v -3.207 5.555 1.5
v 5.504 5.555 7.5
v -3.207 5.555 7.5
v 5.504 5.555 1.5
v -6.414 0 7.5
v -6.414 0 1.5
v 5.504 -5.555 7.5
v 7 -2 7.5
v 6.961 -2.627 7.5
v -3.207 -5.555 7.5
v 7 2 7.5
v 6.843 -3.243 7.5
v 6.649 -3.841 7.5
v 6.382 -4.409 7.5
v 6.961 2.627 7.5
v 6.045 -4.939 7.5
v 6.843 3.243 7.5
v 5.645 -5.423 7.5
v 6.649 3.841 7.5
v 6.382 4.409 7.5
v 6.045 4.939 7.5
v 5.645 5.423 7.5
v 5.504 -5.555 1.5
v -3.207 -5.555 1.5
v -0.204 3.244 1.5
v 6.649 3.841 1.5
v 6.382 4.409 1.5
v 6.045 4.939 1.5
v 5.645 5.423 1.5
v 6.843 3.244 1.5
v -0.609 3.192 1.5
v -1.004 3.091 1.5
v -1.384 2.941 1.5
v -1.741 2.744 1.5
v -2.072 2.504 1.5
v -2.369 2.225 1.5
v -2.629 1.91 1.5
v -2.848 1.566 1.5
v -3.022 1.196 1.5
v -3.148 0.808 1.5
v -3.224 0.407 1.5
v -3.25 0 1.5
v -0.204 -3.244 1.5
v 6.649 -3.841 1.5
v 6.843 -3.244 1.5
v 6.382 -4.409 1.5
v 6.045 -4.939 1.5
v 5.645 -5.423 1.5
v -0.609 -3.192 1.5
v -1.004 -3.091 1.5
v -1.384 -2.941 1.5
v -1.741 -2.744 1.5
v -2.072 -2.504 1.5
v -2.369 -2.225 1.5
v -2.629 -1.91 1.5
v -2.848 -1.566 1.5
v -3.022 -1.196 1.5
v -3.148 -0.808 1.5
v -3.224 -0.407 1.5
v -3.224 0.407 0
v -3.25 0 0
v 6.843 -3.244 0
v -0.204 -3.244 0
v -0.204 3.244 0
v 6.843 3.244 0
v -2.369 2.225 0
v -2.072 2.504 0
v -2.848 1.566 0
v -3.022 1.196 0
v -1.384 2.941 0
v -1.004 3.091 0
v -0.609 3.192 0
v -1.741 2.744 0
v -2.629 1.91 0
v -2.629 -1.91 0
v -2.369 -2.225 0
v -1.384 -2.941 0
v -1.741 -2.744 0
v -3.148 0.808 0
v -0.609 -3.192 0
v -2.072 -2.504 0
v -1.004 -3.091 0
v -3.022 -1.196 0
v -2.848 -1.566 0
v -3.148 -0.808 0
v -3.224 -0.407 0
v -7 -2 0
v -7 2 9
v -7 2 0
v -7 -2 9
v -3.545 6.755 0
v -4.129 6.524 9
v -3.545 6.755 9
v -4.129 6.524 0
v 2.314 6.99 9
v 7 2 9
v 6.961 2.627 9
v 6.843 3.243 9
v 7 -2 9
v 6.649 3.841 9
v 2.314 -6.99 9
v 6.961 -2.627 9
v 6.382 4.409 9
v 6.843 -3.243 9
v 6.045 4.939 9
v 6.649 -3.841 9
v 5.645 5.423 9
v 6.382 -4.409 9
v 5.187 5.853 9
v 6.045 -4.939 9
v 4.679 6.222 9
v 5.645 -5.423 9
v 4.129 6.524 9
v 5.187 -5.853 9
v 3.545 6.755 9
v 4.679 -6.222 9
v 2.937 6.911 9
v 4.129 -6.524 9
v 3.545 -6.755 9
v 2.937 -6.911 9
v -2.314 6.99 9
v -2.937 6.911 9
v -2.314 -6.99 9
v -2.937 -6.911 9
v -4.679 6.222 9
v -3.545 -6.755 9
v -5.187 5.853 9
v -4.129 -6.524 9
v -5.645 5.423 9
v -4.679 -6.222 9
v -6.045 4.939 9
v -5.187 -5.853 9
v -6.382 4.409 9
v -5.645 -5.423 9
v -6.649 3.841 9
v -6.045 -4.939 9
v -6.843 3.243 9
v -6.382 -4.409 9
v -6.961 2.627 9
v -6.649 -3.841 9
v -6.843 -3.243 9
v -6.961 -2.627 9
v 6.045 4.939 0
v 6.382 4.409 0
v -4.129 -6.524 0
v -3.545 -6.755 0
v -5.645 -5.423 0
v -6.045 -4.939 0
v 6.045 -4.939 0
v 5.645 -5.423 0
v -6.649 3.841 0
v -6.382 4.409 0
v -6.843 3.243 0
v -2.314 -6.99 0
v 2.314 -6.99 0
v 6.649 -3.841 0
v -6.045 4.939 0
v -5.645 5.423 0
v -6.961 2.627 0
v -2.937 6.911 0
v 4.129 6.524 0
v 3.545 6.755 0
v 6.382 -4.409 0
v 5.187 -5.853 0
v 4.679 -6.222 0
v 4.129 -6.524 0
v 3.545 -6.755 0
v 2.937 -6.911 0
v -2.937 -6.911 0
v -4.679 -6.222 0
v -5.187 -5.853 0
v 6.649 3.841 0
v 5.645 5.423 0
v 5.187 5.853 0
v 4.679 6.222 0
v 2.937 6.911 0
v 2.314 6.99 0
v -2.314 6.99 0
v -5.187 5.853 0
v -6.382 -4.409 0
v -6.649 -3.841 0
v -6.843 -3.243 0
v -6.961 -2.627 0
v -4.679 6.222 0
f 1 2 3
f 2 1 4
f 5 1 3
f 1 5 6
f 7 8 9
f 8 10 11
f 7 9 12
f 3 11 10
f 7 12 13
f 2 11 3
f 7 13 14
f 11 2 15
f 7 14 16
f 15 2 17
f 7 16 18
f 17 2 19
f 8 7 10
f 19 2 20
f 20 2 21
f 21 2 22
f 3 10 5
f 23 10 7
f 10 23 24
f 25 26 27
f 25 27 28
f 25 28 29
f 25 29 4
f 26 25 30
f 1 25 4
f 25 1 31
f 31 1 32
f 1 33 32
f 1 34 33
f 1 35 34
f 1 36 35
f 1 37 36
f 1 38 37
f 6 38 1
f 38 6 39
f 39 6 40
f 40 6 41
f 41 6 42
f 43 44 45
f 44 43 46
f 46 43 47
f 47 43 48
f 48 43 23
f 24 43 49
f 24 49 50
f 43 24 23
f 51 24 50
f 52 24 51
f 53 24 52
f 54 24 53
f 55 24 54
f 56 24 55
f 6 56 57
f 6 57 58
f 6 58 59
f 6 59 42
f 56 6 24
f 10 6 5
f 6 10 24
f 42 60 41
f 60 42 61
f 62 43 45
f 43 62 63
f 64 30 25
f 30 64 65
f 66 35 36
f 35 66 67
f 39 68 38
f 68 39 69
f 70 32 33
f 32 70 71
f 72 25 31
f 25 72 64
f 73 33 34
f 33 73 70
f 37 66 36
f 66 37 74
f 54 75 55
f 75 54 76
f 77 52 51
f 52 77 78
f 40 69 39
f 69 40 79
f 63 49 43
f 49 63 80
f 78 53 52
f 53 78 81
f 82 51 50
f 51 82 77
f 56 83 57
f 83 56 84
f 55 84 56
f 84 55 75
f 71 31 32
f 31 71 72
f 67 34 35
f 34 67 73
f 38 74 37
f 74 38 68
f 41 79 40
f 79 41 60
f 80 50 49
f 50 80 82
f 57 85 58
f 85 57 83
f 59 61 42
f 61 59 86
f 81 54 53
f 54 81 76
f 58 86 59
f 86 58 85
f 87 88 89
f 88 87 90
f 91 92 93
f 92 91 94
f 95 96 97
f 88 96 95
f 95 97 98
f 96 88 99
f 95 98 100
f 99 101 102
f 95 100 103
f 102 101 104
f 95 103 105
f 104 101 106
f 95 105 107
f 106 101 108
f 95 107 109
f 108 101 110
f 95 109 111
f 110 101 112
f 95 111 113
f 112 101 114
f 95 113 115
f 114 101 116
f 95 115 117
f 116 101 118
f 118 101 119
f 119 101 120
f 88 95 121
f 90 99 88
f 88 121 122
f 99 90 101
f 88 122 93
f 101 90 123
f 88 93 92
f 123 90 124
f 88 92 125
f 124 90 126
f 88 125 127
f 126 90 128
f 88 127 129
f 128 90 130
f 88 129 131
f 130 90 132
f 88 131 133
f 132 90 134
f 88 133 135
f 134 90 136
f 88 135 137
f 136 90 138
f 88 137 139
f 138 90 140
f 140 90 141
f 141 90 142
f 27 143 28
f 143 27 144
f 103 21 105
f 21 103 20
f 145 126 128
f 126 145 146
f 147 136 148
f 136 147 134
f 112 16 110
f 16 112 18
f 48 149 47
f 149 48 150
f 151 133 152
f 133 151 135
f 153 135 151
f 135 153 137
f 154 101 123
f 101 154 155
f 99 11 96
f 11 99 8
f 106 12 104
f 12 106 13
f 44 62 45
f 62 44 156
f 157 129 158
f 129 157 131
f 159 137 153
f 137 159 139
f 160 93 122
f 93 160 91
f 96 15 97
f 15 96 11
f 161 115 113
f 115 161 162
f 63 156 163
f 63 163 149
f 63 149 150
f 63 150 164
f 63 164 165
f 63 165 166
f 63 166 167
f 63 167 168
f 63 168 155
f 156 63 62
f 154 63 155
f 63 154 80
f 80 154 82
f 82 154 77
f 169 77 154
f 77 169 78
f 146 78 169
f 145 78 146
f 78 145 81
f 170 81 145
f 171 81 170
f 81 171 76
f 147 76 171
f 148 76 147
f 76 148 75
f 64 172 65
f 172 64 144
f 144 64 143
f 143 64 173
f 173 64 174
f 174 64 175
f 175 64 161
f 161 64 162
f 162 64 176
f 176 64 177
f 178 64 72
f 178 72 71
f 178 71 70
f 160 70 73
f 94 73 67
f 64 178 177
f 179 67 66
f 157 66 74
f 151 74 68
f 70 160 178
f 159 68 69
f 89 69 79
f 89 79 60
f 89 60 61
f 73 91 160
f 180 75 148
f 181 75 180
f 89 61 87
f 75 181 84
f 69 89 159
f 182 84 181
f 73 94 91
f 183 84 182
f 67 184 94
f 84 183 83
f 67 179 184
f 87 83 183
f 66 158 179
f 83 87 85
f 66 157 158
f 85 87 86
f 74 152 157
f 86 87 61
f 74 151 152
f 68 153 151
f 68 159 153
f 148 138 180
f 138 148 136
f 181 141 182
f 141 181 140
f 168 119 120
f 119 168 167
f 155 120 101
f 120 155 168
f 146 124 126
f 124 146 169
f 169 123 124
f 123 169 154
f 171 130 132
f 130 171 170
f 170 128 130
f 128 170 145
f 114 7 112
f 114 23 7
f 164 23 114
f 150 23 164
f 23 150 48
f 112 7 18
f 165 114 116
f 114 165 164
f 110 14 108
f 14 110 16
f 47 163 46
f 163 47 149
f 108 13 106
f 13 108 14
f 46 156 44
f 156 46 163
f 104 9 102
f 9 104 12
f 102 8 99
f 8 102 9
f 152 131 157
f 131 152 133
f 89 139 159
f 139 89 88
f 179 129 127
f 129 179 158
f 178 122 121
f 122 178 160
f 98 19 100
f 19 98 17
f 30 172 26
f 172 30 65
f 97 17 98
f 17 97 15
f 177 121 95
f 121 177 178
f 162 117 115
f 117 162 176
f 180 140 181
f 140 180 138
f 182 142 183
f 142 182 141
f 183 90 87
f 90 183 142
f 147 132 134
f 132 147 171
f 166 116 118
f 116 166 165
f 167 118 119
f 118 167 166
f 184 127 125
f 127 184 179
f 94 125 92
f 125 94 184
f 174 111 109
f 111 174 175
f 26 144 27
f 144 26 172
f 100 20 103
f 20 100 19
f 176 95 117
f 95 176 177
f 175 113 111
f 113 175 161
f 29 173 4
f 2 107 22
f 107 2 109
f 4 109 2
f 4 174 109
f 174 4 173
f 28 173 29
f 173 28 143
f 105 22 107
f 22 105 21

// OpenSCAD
$fn = 50;


difference() {
	union() {
		hull() {
			translate(v = [-2.0000000000, 2.0000000000, 0]) {
				cylinder(h = 9, r = 5);
			}
			translate(v = [2.0000000000, 2.0000000000, 0]) {
				cylinder(h = 9, r = 5);
			}
			translate(v = [-2.0000000000, -2.0000000000, 0]) {
				cylinder(h = 9, r = 5);
			}
			translate(v = [2.0000000000, -2.0000000000, 0]) {
				cylinder(h = 9, r = 5);
			}
		}
	}
	union() {
		translate(v = [0, 0, 1.5000000000]) {
			rotate(a = [0, 0, 0]) {
				difference() {
					union() {
						#linear_extrude(height = 6) {
							polygon(points = [[6.4142500000, 0.0000000000], [3.2071250000, 5.5549034462], [-3.2071250000, 5.5549034462], [-6.4142500000, 0.0000000000], [-3.2071250000, -5.5549034462], [3.2071250000, -5.5549034462]]);
						}
					}
					union();
				}
			}
		}
		translate(v = [5, 0, 1.5000000000]) {
			rotate(a = [0, 0, 0]) {
				difference() {
					union() {
						#linear_extrude(height = 6) {
							polygon(points = [[6.4142500000, 0.0000000000], [3.2071250000, 5.5549034462], [-3.2071250000, 5.5549034462], [-6.4142500000, 0.0000000000], [-3.2071250000, -5.5549034462], [3.2071250000, -5.5549034462]]);
						}
					}
					union();
				}
			}
		}
		translate(v = [6, 0, 1.5000000000]) {
			rotate(a = [0, 0, 0]) {
				difference() {
					union() {
						#linear_extrude(height = 6) {
							polygon(points = [[6.4142500000, 0.0000000000], [3.2071250000, 5.5549034462], [-3.2071250000, 5.5549034462], [-6.4142500000, 0.0000000000], [-3.2071250000, -5.5549034462], [3.2071250000, -5.5549034462]]);
						}
					}
					union();
				}
			}
		}
		translate(v = [7, 0, 1.5000000000]) {
			rotate(a = [0, 0, 0]) {
				difference() {
					union() {
						#linear_extrude(height = 6) {
							polygon(points = [[6.4142500000, 0.0000000000], [3.2071250000, 5.5549034462], [-3.2071250000, 5.5549034462], [-6.4142500000, 0.0000000000], [-3.2071250000, -5.5549034462], [3.2071250000, -5.5549034462]]);
						}
					}
					union();
				}
			}
		}
		translate(v = [5, 0, -7.5000000000]) {
			rotate(a = [0, 0, 0]) {
				difference() {
					union() {
						hull() {
							translate(v = [5.0000000000, 0, 0]) {
								cylinder(h = 9, r = 3.2500000000, r1 = 3.2500000000, r2 = 3.2500000000);
							}
							translate(v = [-5.0000000000, 0, 0]) {
								cylinder(h = 9, r = 3.2500000000, r1 = 3.2500000000, r2 = 3.2500000000);
							}
						}
					}
					union();
				}
			}
		}
	}
}
